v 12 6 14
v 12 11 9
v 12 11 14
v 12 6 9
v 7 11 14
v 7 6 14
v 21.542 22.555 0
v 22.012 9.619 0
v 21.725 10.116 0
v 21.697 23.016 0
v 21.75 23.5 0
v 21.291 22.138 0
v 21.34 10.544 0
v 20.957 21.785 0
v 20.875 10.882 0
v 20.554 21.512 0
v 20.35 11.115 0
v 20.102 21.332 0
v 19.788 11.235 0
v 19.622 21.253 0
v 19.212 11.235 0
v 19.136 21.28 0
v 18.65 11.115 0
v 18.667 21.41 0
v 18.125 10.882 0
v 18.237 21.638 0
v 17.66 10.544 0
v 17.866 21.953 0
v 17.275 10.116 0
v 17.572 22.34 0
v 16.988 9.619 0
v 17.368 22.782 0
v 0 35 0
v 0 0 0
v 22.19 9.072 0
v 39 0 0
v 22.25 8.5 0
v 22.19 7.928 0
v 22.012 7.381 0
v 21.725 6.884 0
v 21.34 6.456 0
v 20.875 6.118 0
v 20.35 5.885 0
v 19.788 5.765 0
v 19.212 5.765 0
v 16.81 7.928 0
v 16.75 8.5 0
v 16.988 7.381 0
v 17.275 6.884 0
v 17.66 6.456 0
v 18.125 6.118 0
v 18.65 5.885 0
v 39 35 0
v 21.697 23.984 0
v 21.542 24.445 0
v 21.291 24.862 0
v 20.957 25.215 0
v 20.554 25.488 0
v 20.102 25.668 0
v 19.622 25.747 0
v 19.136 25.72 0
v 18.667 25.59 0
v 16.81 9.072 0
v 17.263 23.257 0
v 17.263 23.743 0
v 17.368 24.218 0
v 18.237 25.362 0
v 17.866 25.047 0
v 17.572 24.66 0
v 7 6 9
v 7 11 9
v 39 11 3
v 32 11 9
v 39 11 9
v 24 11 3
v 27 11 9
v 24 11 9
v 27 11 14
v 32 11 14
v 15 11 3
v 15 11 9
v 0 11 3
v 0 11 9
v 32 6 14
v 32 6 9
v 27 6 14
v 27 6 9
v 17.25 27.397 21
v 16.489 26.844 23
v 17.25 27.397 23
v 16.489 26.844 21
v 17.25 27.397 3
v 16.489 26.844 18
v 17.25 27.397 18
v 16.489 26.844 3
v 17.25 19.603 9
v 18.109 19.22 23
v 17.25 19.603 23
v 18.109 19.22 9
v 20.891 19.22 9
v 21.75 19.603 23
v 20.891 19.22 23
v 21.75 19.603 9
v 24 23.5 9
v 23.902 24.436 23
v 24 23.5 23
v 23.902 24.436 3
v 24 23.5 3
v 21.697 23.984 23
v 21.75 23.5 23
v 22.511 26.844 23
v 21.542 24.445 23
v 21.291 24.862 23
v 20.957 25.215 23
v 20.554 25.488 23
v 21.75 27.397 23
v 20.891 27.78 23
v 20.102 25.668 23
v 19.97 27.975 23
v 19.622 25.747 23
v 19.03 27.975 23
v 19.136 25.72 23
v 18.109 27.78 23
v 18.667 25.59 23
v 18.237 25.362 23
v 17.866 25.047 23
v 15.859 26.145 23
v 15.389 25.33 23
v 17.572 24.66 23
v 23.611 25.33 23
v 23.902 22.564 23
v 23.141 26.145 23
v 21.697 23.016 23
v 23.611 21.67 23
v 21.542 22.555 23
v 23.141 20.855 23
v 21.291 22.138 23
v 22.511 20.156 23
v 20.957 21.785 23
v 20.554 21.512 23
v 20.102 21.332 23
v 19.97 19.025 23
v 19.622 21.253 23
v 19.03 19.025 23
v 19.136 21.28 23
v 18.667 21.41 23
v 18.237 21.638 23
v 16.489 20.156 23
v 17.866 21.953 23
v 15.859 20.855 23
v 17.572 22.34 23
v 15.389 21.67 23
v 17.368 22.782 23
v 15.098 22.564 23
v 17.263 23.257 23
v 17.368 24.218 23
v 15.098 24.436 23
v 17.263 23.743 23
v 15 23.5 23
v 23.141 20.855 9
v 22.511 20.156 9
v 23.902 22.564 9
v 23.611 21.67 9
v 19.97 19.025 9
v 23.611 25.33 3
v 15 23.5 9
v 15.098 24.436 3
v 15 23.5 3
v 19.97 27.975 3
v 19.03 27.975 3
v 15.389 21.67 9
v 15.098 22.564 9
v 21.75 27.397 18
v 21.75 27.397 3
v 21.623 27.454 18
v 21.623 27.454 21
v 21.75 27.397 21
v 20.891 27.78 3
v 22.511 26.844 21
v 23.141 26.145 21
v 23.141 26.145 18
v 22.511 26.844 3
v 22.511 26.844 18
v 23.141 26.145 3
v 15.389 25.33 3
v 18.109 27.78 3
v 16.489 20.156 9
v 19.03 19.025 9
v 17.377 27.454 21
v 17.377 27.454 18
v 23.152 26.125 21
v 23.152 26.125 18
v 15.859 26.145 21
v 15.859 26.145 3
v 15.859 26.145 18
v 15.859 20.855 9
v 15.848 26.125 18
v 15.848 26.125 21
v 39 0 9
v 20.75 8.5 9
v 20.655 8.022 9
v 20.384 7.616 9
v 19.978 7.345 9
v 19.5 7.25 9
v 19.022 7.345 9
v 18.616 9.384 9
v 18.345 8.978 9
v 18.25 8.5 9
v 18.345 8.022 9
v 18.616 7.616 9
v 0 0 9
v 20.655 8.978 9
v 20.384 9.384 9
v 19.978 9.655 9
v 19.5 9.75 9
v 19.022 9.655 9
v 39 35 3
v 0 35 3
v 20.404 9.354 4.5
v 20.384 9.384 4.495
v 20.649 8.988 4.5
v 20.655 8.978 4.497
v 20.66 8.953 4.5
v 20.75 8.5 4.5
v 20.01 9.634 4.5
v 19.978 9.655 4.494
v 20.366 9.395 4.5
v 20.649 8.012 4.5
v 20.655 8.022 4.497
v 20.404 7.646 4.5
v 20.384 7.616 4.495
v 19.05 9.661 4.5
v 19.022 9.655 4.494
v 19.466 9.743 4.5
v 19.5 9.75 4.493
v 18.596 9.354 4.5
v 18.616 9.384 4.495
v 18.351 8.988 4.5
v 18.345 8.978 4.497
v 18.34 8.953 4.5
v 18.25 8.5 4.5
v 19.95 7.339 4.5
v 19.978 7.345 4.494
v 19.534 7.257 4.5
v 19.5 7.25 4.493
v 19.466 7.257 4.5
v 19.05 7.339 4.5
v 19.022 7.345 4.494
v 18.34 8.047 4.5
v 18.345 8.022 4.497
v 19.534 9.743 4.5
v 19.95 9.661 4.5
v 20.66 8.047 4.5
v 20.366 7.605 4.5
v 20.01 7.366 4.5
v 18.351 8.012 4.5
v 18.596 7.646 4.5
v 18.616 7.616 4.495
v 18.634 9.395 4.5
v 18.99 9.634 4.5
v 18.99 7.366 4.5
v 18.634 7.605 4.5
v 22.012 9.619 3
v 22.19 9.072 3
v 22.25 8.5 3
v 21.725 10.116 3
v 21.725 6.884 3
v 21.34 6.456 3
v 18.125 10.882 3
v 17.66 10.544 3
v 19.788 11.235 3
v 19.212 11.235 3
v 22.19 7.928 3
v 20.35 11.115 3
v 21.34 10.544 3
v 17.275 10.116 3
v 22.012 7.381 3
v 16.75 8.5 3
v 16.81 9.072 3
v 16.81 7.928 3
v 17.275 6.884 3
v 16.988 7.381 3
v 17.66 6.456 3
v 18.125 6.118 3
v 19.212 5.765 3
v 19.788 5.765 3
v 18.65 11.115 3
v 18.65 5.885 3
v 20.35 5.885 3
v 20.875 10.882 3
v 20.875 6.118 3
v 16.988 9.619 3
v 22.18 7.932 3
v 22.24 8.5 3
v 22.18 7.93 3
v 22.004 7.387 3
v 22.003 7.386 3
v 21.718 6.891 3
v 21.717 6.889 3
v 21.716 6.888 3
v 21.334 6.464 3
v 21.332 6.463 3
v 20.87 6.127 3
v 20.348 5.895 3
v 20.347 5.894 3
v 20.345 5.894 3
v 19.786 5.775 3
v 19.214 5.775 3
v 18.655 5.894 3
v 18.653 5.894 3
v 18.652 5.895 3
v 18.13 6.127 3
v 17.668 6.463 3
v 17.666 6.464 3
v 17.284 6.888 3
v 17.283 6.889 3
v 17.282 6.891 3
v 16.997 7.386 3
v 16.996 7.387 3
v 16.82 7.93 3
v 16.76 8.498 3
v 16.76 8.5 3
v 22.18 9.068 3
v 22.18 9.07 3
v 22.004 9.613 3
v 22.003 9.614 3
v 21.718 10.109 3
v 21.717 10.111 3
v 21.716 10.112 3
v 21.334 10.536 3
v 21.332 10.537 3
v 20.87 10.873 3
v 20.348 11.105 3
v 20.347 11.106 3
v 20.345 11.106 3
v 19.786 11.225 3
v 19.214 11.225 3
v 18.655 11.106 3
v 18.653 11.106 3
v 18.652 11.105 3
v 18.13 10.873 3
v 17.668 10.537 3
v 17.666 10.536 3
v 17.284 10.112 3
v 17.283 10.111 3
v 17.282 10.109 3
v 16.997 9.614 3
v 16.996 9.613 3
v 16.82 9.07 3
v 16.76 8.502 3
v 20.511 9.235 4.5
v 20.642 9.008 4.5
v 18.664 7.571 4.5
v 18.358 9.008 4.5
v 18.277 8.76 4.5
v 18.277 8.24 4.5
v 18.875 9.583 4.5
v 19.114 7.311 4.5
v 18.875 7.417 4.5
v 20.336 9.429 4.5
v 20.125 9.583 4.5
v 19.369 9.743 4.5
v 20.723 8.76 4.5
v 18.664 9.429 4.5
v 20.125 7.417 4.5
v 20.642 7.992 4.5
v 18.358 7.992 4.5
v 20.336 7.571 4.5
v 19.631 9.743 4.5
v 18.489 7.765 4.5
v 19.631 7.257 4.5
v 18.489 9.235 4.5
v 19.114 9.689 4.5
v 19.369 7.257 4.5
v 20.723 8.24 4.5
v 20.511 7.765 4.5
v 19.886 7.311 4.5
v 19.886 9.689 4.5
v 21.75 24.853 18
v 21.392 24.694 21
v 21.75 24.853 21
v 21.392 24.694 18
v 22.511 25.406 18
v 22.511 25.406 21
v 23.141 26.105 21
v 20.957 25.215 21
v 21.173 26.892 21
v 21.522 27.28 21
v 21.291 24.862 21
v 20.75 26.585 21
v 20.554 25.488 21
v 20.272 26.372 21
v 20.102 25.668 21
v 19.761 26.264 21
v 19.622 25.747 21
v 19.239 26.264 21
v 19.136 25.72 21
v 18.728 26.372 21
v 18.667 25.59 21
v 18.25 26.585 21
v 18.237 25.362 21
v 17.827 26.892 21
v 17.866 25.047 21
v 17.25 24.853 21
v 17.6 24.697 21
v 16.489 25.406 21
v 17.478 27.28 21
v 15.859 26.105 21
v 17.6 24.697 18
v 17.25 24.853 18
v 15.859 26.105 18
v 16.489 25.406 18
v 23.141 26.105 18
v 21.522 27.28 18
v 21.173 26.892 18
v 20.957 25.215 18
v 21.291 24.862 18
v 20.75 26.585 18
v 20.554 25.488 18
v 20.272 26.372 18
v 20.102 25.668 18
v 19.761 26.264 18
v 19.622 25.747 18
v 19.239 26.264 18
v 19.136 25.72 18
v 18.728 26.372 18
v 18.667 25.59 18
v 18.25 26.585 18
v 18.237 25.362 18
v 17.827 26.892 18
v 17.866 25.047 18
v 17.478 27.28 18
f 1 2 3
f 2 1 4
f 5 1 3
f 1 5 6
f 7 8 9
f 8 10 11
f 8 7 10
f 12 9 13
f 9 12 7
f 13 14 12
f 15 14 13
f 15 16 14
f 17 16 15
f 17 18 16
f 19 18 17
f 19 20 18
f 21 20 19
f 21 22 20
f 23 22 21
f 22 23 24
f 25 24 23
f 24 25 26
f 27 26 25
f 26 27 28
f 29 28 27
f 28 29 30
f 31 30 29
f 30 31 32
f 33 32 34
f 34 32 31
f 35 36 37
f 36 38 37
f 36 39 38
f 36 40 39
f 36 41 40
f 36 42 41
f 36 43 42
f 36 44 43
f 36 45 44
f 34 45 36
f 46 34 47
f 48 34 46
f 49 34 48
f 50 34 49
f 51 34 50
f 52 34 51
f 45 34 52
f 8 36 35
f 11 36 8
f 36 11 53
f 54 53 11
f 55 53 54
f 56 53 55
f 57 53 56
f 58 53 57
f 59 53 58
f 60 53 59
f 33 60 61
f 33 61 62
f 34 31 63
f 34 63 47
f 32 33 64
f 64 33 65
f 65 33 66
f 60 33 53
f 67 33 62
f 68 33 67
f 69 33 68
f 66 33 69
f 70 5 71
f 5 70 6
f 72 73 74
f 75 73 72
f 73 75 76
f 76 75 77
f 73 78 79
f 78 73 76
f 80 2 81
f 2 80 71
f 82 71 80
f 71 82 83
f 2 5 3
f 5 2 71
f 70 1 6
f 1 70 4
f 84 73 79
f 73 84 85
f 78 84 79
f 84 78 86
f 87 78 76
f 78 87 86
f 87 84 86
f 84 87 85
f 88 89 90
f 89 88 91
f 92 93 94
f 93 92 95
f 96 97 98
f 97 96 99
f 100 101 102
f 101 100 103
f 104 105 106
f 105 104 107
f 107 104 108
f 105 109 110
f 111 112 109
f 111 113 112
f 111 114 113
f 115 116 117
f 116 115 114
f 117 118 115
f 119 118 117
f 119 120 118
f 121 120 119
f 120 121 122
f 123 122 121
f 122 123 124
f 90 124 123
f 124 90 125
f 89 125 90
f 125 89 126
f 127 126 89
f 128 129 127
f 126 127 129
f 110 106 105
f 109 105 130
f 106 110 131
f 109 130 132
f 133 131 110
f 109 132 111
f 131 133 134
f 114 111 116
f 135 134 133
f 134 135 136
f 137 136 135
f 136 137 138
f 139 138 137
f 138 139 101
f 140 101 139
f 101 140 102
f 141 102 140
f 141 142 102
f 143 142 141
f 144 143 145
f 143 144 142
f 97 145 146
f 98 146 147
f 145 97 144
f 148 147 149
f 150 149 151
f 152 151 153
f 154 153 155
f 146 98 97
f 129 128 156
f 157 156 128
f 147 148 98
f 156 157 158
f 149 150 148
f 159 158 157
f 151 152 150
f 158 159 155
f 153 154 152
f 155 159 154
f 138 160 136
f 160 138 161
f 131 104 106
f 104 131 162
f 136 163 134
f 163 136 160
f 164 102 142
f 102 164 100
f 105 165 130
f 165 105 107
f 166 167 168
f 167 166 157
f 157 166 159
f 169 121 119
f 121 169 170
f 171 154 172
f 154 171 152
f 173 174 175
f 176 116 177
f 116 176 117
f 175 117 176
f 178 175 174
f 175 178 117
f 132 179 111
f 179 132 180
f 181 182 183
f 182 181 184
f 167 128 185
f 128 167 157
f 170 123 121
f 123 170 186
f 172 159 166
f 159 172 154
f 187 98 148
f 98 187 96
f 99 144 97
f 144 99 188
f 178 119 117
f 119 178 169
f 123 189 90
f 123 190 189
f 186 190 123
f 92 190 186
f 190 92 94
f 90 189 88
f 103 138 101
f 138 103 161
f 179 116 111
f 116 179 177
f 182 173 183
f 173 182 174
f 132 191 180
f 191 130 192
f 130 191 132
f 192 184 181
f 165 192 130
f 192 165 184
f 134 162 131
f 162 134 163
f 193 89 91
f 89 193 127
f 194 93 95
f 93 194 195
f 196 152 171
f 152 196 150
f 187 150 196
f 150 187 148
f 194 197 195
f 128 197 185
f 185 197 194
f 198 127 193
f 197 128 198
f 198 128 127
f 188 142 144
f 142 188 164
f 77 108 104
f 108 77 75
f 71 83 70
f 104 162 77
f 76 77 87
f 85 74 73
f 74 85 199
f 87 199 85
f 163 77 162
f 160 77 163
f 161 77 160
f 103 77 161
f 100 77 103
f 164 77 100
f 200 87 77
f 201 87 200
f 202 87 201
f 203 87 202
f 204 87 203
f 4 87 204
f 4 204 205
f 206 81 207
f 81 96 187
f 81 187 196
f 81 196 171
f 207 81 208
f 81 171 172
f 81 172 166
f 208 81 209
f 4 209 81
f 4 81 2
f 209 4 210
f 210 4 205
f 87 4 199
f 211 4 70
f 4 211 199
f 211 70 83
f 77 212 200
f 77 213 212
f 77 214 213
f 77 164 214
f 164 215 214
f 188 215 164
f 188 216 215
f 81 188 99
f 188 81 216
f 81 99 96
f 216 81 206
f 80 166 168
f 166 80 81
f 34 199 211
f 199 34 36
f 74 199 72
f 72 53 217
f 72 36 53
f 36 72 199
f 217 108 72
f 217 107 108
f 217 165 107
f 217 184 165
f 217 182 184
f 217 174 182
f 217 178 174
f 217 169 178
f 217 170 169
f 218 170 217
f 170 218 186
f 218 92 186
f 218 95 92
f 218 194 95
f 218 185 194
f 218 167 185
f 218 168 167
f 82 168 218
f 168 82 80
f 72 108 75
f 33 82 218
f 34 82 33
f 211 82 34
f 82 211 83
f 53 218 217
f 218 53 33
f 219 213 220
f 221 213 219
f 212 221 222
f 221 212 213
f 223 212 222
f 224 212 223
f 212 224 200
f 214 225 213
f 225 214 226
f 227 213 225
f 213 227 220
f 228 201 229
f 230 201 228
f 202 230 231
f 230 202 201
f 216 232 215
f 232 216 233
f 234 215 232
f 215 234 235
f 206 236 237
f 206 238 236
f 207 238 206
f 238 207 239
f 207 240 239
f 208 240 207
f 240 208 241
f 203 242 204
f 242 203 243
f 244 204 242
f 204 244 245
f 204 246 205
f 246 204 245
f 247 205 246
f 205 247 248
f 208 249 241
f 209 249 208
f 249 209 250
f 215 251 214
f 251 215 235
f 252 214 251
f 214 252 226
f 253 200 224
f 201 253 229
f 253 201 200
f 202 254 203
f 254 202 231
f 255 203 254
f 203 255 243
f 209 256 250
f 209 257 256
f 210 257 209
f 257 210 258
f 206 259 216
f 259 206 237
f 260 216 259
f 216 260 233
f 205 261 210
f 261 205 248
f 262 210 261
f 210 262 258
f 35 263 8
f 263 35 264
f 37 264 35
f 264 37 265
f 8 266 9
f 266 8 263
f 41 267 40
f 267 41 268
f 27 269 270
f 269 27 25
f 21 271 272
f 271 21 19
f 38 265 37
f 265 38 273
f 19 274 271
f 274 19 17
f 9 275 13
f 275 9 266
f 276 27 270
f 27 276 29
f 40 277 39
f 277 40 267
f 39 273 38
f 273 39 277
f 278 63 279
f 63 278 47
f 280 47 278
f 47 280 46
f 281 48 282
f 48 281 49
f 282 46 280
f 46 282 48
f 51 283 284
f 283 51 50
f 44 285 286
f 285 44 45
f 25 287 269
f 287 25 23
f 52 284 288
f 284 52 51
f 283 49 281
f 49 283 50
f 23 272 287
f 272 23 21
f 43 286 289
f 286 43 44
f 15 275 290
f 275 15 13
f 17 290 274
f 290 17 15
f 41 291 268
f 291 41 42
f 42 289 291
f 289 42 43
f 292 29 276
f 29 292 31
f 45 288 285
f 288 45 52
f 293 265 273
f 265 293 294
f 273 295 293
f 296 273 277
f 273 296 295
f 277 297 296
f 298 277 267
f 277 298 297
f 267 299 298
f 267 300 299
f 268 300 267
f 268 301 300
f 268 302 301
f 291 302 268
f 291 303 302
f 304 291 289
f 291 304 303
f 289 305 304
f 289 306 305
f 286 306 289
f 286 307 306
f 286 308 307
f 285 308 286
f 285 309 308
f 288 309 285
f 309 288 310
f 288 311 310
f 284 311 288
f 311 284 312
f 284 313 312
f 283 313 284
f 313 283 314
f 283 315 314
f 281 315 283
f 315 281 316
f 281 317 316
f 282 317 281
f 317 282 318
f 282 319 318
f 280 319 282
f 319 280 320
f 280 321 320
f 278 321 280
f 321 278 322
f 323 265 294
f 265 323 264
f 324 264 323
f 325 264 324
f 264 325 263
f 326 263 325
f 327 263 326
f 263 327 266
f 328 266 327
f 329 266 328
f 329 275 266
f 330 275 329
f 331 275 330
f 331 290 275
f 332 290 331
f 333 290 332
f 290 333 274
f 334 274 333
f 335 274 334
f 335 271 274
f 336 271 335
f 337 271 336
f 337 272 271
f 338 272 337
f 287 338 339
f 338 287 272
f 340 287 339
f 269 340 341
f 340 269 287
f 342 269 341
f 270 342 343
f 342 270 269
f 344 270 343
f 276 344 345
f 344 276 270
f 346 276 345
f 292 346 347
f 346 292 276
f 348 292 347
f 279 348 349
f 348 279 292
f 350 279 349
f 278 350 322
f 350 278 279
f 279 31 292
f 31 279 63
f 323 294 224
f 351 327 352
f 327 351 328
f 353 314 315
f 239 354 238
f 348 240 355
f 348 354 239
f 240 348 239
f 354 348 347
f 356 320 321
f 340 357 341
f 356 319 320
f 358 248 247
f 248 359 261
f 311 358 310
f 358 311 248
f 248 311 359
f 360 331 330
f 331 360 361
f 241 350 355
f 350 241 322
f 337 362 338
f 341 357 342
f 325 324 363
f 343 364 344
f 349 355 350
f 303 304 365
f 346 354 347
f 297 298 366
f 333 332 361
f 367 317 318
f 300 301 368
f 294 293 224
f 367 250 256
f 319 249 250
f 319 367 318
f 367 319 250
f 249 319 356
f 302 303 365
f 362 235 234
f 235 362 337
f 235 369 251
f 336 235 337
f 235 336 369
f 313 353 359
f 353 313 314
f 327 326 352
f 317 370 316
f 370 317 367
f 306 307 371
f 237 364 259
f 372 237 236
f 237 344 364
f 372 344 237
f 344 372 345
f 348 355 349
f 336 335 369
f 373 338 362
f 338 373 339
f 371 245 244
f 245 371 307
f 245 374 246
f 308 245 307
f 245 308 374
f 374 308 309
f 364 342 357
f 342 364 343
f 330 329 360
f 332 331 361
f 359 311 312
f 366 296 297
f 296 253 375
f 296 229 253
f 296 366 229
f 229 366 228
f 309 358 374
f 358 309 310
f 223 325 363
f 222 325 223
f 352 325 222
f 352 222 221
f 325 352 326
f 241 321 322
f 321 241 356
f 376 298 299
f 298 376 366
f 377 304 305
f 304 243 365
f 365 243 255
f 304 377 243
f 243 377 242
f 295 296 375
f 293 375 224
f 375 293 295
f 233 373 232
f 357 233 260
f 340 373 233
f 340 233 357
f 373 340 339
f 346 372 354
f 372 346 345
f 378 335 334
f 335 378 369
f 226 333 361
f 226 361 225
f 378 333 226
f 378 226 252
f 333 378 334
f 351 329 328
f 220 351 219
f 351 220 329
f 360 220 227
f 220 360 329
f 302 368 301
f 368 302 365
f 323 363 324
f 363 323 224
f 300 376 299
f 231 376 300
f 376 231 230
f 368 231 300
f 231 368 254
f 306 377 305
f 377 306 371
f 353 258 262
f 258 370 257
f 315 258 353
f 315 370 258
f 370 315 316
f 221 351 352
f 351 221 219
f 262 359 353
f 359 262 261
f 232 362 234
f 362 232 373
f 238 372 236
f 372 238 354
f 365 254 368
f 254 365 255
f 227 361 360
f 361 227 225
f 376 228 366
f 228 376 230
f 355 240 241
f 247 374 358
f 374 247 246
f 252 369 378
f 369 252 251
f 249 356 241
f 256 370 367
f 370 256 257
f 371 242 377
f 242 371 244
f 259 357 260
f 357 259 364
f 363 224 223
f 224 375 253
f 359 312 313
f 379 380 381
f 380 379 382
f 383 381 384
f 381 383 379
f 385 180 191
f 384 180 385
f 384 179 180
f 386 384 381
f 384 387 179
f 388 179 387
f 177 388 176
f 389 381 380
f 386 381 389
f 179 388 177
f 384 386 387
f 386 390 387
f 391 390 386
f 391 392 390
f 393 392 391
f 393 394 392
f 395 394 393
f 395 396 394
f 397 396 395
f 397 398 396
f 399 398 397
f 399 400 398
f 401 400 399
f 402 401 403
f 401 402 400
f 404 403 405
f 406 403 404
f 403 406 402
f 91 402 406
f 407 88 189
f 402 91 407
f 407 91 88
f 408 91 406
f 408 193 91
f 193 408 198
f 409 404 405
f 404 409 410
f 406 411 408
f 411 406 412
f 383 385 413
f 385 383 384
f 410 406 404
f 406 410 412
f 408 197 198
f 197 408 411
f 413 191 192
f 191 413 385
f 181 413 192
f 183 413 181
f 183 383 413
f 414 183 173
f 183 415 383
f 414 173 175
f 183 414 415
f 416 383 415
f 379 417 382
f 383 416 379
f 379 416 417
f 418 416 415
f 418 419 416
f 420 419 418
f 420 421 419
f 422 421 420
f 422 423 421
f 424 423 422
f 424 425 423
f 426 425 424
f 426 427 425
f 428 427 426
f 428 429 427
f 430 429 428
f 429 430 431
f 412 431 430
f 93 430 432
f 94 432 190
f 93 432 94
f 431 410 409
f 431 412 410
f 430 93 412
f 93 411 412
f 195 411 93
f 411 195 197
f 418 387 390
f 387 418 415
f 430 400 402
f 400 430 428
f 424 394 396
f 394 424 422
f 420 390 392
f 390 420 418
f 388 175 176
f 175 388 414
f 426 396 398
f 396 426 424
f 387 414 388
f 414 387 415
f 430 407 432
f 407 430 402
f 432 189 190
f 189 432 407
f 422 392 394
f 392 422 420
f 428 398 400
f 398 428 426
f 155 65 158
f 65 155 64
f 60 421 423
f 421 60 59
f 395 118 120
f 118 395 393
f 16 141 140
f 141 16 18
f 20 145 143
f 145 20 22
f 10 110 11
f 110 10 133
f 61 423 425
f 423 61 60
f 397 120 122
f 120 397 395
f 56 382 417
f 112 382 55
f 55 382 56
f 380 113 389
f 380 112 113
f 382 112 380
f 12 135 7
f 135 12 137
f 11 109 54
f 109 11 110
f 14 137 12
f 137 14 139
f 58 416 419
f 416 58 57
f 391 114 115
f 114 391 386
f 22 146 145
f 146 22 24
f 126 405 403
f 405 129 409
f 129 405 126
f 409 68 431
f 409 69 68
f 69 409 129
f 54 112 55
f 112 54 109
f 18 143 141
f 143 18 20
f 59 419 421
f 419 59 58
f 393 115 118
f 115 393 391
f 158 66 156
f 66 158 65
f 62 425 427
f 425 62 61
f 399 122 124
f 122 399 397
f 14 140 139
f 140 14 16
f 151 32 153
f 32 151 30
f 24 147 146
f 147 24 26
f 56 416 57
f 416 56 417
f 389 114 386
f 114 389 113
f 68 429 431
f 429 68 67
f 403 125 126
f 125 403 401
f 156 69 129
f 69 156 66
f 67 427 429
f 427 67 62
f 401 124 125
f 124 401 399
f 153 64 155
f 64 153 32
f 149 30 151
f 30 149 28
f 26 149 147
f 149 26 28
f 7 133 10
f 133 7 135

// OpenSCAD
// Reverse bowden tube guide for rear panel
//
// Copyright (C) 2021  Kevin O'Connor <kevin@koconnor.net>
//
// This file may be distributed under the terms of the GNU GPLv3 license.

nut_space_width = 15;
insert_pillar_width = 5;
insert_pillar_length = 5;
insert_pillar_height = 5;
top_length = 6;
bottom_length = 8;
panel_height = 6;
panel_grip_height = 3;
panel_grip_length = 7;
tube_guide_dia = 9;
tube_guide_height = 20;
tube_dia = 4.5;
screw_dia = 2.5;
screw_head_dia = 5.5;
CUT = 0.01;
$fs = 0.5;

module tube_guide() {
    total_width = nut_space_width + 2*insert_pillar_width + 2*panel_grip_length;
    total_length = (top_length + insert_pillar_length + bottom_length
                    + tube_guide_dia + panel_grip_length);
    module panel_grip() {
        cube([total_width, total_length, panel_grip_height]);
    }
    module top_seal() {
        top_seal_length = top_length + insert_pillar_length;
        top_seal_height = panel_grip_height + panel_height;
        cube([total_width, top_seal_length, top_seal_height]);
    }
    module rail_guide_pillars() {
        pillar_x = (total_width - nut_space_width) / 2 - insert_pillar_width;
        height = panel_grip_height + panel_height + insert_pillar_height;
        translate([pillar_x, top_length, 0])
            cube([insert_pillar_width, insert_pillar_length, height]);
        pillar_x2 = pillar_x + nut_space_width + insert_pillar_width;
        translate([pillar_x2, top_length, 0])
            cube([insert_pillar_width, insert_pillar_length, height]);
    }
    tube_x = total_width/2;
    tube_y = top_length + insert_pillar_length + bottom_length + tube_guide_dia/2;
    tube_height = panel_grip_height + tube_guide_height;
    module tube_guide() {
        // tube guide
        translate([tube_x, tube_y, 0])
            cylinder(d=tube_guide_dia, h=tube_height);
        // connect tube guide
        translate([(total_width - tube_guide_dia)/2, 0, 0])
            cube([tube_guide_dia, tube_y, panel_grip_height + panel_height]);
    }

    module tubecut() {
        translate([tube_x, tube_y, -CUT])
            cylinder(d=tube_dia, h=tube_height+2*CUT);
    }

    module screwcut() {
        x = total_width / 2;
        y = top_length + insert_pillar_length/2;
        top_seal_height = panel_grip_height + panel_height;
        translate([x, y, -CUT])
            cylinder(d=screw_dia, h=top_seal_height+2*CUT);
        bury = 3;
        translate([x, y, -CUT])
            cylinder(d=screw_head_dia, h=bury+CUT);
        translate([x, y, bury-CUT])
            cylinder(d1=screw_head_dia, d2=screw_dia, h=1.5+CUT);
    }

    module ziptiecut() {
        tie_length = 2;
        tie_height = 3;
        tie_dia = 5;
        tie_y = tube_y + (tie_dia + tube_dia)/2 + .5;
        tie_z_offset = 2;
        tie_z = tube_height - tie_z_offset - tie_height;
        translate([total_width/2, tie_y, tie_z])
            difference() {
               cylinder(h=tie_height, d=tie_dia + 2*tie_length);
                cylinder(h=tie_height, d=tie_dia);
            }
    }

    difference() {
        union() {
            panel_grip();
            top_seal();
            rail_guide_pillars();
            tube_guide();
        }
        tubecut();
        screwcut();
        ziptiecut();
    }
}

//
// Object selection
//

tube_guide();
